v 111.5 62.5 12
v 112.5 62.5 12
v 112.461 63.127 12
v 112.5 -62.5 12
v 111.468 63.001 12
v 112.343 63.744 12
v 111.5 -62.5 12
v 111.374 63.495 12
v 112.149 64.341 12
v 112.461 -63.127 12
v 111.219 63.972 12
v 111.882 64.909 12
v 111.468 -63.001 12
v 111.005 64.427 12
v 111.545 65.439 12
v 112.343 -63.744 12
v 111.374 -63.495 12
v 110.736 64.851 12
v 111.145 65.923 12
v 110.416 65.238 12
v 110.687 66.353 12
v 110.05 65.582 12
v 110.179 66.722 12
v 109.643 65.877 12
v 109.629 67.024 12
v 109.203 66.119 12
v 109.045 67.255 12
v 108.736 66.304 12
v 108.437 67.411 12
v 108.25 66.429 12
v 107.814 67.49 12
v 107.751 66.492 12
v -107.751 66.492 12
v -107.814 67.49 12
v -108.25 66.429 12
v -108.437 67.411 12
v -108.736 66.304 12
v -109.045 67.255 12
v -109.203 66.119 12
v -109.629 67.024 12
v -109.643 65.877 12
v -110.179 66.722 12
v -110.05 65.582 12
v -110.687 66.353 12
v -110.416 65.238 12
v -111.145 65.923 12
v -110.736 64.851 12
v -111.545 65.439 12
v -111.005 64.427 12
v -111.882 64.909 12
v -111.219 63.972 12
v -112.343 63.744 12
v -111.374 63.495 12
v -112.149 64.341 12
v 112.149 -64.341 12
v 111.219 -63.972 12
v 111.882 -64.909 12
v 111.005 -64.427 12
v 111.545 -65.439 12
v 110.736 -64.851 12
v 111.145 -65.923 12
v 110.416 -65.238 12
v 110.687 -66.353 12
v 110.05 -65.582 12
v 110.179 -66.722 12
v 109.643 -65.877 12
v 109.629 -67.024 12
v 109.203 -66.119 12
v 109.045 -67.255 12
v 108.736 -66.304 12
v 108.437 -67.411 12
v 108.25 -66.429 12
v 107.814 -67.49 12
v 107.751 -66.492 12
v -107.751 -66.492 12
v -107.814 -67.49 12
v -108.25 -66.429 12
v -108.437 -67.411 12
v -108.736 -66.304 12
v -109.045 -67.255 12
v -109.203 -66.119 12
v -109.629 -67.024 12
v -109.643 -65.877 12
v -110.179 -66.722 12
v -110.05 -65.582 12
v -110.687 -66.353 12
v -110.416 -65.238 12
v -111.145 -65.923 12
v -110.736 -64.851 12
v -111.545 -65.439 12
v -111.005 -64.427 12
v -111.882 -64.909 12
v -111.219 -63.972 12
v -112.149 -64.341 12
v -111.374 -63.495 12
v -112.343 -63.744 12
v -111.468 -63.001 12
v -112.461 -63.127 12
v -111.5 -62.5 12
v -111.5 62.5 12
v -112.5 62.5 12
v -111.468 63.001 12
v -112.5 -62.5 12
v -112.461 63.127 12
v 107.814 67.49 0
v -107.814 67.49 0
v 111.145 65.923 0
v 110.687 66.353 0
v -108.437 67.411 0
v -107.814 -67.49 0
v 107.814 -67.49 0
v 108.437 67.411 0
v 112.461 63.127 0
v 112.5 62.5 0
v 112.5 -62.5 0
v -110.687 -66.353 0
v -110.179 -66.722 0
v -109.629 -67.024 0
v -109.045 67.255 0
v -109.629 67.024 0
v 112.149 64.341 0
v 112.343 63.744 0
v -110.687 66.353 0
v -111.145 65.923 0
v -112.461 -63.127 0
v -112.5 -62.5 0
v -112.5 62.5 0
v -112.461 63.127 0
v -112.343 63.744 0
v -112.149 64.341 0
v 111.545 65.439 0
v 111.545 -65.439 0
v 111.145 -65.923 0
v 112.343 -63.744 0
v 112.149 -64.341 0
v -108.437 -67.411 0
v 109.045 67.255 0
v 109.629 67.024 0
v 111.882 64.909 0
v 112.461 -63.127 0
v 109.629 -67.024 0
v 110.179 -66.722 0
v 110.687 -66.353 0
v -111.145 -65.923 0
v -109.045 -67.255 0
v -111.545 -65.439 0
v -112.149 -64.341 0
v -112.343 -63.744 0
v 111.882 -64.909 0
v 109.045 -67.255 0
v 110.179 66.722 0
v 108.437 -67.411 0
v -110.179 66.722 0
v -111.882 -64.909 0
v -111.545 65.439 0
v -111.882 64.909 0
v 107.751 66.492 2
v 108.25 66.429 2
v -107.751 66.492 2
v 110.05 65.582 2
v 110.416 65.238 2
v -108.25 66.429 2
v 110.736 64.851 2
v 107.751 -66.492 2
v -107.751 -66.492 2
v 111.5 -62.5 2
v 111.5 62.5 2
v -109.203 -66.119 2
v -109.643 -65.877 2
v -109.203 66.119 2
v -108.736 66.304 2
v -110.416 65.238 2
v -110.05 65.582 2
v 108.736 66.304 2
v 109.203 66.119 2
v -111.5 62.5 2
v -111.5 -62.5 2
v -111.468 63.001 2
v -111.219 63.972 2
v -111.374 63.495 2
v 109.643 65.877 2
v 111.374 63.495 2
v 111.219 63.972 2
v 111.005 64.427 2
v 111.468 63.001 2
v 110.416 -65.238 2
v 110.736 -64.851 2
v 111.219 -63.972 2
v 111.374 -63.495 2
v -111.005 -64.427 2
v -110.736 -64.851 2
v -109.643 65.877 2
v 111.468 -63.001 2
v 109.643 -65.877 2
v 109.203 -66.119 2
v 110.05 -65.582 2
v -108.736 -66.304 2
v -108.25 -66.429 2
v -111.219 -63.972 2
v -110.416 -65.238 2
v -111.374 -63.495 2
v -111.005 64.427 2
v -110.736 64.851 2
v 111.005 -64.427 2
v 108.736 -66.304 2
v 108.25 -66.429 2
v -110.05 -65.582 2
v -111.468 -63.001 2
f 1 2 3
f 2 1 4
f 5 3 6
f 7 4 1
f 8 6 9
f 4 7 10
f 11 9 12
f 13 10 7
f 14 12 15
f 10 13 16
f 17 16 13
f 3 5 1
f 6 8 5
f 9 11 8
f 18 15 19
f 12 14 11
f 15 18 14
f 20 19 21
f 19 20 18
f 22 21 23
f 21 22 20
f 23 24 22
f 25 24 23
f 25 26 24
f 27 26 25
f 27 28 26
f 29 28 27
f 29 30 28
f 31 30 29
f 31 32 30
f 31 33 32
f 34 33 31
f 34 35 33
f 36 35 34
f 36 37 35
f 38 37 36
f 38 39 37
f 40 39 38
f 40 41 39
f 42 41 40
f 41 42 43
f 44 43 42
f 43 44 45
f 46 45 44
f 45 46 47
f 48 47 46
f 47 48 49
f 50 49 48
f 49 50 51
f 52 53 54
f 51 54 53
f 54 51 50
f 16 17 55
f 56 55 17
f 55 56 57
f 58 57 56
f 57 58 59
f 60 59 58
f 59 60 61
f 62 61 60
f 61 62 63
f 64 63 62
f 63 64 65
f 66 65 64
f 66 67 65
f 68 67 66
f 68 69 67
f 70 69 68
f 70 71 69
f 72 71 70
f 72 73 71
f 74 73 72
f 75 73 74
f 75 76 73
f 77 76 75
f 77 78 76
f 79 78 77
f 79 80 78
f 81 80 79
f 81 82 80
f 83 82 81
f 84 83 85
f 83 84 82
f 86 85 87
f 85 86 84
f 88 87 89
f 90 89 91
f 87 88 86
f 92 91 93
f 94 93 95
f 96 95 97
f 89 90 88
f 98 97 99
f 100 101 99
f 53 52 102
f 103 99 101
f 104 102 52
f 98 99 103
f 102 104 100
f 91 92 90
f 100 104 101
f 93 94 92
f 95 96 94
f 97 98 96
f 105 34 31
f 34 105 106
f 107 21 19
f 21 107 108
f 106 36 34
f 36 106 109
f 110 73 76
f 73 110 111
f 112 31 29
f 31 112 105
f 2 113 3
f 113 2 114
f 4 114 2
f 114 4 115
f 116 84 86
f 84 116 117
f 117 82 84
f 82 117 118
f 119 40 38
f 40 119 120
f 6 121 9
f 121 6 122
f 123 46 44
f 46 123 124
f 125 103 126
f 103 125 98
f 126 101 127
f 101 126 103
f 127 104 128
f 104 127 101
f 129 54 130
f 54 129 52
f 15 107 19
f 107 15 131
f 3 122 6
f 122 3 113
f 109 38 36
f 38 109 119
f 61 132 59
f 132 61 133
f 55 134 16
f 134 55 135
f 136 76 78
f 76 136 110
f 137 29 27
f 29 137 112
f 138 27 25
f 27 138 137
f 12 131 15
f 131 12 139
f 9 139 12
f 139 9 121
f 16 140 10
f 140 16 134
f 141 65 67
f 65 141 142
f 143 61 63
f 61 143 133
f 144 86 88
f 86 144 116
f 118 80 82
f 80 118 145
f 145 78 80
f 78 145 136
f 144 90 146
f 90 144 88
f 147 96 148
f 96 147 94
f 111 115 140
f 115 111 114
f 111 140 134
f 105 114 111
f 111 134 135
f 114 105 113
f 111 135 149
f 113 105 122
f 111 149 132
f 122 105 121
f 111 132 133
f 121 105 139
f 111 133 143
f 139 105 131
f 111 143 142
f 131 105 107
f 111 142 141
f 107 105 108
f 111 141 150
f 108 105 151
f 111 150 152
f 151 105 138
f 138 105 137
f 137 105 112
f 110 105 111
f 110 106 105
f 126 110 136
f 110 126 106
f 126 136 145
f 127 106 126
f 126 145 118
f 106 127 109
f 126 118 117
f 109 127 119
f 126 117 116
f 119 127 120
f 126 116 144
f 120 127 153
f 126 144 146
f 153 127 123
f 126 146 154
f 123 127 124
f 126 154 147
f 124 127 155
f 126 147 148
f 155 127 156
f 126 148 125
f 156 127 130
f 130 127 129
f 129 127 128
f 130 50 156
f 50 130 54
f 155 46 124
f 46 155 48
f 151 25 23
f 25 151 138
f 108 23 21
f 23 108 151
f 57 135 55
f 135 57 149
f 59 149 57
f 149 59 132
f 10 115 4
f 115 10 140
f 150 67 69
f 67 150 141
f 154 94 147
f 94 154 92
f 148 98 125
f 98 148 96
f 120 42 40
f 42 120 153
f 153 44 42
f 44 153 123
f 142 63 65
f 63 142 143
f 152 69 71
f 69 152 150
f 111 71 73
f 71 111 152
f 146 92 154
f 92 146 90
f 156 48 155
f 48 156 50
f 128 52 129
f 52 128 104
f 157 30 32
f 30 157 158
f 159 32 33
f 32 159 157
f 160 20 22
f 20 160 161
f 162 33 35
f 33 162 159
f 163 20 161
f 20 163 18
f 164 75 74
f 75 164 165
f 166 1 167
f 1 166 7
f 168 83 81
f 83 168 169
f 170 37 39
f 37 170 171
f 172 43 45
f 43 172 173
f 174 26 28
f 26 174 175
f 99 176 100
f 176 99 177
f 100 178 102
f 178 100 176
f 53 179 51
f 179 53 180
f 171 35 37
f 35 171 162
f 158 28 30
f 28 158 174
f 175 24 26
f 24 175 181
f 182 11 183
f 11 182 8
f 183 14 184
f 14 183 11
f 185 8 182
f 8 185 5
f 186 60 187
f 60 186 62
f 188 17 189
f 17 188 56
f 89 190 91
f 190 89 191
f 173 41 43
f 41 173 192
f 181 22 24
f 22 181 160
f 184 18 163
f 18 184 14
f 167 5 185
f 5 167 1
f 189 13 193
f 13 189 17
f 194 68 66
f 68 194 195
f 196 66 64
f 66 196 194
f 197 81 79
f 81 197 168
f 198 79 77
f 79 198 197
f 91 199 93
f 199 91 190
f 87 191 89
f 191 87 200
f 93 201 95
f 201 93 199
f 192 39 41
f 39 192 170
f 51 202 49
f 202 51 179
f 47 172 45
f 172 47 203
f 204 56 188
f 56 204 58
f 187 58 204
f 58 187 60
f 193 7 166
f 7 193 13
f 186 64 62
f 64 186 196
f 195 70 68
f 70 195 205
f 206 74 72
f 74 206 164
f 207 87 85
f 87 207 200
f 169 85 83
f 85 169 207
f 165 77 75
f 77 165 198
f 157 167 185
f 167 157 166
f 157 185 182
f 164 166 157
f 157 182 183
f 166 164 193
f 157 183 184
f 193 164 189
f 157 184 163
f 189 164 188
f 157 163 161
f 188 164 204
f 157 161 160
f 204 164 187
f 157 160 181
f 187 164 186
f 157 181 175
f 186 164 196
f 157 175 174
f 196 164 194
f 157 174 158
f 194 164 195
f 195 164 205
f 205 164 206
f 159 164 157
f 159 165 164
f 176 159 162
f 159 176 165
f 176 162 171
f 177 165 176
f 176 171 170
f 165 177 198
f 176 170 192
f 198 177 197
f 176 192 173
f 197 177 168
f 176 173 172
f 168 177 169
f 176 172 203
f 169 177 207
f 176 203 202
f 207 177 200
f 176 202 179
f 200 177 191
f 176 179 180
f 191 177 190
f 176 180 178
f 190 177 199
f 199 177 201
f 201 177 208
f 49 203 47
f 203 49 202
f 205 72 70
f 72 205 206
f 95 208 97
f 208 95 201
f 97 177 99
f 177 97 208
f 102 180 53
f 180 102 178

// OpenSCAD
$fn = 50;


difference() {
	union() {
		hull() {
			translate(v = [-107.5000000000, 62.5000000000, 0]) {
				cylinder(h = 12, r = 5);
			}
			translate(v = [107.5000000000, 62.5000000000, 0]) {
				cylinder(h = 12, r = 5);
			}
			translate(v = [-107.5000000000, -62.5000000000, 0]) {
				cylinder(h = 12, r = 5);
			}
			translate(v = [107.5000000000, -62.5000000000, 0]) {
				cylinder(h = 12, r = 5);
			}
		}
	}
	union() {
		translate(v = [0, 0, 2]) {
			hull() {
				translate(v = [-107.5000000000, 62.5000000000, 0]) {
					cylinder(h = 10, r = 4);
				}
				translate(v = [107.5000000000, 62.5000000000, 0]) {
					cylinder(h = 10, r = 4);
				}
				translate(v = [-107.5000000000, -62.5000000000, 0]) {
					cylinder(h = 10, r = 4);
				}
				translate(v = [107.5000000000, -62.5000000000, 0]) {
					cylinder(h = 10, r = 4);
				}
			}
		}
	}
}
